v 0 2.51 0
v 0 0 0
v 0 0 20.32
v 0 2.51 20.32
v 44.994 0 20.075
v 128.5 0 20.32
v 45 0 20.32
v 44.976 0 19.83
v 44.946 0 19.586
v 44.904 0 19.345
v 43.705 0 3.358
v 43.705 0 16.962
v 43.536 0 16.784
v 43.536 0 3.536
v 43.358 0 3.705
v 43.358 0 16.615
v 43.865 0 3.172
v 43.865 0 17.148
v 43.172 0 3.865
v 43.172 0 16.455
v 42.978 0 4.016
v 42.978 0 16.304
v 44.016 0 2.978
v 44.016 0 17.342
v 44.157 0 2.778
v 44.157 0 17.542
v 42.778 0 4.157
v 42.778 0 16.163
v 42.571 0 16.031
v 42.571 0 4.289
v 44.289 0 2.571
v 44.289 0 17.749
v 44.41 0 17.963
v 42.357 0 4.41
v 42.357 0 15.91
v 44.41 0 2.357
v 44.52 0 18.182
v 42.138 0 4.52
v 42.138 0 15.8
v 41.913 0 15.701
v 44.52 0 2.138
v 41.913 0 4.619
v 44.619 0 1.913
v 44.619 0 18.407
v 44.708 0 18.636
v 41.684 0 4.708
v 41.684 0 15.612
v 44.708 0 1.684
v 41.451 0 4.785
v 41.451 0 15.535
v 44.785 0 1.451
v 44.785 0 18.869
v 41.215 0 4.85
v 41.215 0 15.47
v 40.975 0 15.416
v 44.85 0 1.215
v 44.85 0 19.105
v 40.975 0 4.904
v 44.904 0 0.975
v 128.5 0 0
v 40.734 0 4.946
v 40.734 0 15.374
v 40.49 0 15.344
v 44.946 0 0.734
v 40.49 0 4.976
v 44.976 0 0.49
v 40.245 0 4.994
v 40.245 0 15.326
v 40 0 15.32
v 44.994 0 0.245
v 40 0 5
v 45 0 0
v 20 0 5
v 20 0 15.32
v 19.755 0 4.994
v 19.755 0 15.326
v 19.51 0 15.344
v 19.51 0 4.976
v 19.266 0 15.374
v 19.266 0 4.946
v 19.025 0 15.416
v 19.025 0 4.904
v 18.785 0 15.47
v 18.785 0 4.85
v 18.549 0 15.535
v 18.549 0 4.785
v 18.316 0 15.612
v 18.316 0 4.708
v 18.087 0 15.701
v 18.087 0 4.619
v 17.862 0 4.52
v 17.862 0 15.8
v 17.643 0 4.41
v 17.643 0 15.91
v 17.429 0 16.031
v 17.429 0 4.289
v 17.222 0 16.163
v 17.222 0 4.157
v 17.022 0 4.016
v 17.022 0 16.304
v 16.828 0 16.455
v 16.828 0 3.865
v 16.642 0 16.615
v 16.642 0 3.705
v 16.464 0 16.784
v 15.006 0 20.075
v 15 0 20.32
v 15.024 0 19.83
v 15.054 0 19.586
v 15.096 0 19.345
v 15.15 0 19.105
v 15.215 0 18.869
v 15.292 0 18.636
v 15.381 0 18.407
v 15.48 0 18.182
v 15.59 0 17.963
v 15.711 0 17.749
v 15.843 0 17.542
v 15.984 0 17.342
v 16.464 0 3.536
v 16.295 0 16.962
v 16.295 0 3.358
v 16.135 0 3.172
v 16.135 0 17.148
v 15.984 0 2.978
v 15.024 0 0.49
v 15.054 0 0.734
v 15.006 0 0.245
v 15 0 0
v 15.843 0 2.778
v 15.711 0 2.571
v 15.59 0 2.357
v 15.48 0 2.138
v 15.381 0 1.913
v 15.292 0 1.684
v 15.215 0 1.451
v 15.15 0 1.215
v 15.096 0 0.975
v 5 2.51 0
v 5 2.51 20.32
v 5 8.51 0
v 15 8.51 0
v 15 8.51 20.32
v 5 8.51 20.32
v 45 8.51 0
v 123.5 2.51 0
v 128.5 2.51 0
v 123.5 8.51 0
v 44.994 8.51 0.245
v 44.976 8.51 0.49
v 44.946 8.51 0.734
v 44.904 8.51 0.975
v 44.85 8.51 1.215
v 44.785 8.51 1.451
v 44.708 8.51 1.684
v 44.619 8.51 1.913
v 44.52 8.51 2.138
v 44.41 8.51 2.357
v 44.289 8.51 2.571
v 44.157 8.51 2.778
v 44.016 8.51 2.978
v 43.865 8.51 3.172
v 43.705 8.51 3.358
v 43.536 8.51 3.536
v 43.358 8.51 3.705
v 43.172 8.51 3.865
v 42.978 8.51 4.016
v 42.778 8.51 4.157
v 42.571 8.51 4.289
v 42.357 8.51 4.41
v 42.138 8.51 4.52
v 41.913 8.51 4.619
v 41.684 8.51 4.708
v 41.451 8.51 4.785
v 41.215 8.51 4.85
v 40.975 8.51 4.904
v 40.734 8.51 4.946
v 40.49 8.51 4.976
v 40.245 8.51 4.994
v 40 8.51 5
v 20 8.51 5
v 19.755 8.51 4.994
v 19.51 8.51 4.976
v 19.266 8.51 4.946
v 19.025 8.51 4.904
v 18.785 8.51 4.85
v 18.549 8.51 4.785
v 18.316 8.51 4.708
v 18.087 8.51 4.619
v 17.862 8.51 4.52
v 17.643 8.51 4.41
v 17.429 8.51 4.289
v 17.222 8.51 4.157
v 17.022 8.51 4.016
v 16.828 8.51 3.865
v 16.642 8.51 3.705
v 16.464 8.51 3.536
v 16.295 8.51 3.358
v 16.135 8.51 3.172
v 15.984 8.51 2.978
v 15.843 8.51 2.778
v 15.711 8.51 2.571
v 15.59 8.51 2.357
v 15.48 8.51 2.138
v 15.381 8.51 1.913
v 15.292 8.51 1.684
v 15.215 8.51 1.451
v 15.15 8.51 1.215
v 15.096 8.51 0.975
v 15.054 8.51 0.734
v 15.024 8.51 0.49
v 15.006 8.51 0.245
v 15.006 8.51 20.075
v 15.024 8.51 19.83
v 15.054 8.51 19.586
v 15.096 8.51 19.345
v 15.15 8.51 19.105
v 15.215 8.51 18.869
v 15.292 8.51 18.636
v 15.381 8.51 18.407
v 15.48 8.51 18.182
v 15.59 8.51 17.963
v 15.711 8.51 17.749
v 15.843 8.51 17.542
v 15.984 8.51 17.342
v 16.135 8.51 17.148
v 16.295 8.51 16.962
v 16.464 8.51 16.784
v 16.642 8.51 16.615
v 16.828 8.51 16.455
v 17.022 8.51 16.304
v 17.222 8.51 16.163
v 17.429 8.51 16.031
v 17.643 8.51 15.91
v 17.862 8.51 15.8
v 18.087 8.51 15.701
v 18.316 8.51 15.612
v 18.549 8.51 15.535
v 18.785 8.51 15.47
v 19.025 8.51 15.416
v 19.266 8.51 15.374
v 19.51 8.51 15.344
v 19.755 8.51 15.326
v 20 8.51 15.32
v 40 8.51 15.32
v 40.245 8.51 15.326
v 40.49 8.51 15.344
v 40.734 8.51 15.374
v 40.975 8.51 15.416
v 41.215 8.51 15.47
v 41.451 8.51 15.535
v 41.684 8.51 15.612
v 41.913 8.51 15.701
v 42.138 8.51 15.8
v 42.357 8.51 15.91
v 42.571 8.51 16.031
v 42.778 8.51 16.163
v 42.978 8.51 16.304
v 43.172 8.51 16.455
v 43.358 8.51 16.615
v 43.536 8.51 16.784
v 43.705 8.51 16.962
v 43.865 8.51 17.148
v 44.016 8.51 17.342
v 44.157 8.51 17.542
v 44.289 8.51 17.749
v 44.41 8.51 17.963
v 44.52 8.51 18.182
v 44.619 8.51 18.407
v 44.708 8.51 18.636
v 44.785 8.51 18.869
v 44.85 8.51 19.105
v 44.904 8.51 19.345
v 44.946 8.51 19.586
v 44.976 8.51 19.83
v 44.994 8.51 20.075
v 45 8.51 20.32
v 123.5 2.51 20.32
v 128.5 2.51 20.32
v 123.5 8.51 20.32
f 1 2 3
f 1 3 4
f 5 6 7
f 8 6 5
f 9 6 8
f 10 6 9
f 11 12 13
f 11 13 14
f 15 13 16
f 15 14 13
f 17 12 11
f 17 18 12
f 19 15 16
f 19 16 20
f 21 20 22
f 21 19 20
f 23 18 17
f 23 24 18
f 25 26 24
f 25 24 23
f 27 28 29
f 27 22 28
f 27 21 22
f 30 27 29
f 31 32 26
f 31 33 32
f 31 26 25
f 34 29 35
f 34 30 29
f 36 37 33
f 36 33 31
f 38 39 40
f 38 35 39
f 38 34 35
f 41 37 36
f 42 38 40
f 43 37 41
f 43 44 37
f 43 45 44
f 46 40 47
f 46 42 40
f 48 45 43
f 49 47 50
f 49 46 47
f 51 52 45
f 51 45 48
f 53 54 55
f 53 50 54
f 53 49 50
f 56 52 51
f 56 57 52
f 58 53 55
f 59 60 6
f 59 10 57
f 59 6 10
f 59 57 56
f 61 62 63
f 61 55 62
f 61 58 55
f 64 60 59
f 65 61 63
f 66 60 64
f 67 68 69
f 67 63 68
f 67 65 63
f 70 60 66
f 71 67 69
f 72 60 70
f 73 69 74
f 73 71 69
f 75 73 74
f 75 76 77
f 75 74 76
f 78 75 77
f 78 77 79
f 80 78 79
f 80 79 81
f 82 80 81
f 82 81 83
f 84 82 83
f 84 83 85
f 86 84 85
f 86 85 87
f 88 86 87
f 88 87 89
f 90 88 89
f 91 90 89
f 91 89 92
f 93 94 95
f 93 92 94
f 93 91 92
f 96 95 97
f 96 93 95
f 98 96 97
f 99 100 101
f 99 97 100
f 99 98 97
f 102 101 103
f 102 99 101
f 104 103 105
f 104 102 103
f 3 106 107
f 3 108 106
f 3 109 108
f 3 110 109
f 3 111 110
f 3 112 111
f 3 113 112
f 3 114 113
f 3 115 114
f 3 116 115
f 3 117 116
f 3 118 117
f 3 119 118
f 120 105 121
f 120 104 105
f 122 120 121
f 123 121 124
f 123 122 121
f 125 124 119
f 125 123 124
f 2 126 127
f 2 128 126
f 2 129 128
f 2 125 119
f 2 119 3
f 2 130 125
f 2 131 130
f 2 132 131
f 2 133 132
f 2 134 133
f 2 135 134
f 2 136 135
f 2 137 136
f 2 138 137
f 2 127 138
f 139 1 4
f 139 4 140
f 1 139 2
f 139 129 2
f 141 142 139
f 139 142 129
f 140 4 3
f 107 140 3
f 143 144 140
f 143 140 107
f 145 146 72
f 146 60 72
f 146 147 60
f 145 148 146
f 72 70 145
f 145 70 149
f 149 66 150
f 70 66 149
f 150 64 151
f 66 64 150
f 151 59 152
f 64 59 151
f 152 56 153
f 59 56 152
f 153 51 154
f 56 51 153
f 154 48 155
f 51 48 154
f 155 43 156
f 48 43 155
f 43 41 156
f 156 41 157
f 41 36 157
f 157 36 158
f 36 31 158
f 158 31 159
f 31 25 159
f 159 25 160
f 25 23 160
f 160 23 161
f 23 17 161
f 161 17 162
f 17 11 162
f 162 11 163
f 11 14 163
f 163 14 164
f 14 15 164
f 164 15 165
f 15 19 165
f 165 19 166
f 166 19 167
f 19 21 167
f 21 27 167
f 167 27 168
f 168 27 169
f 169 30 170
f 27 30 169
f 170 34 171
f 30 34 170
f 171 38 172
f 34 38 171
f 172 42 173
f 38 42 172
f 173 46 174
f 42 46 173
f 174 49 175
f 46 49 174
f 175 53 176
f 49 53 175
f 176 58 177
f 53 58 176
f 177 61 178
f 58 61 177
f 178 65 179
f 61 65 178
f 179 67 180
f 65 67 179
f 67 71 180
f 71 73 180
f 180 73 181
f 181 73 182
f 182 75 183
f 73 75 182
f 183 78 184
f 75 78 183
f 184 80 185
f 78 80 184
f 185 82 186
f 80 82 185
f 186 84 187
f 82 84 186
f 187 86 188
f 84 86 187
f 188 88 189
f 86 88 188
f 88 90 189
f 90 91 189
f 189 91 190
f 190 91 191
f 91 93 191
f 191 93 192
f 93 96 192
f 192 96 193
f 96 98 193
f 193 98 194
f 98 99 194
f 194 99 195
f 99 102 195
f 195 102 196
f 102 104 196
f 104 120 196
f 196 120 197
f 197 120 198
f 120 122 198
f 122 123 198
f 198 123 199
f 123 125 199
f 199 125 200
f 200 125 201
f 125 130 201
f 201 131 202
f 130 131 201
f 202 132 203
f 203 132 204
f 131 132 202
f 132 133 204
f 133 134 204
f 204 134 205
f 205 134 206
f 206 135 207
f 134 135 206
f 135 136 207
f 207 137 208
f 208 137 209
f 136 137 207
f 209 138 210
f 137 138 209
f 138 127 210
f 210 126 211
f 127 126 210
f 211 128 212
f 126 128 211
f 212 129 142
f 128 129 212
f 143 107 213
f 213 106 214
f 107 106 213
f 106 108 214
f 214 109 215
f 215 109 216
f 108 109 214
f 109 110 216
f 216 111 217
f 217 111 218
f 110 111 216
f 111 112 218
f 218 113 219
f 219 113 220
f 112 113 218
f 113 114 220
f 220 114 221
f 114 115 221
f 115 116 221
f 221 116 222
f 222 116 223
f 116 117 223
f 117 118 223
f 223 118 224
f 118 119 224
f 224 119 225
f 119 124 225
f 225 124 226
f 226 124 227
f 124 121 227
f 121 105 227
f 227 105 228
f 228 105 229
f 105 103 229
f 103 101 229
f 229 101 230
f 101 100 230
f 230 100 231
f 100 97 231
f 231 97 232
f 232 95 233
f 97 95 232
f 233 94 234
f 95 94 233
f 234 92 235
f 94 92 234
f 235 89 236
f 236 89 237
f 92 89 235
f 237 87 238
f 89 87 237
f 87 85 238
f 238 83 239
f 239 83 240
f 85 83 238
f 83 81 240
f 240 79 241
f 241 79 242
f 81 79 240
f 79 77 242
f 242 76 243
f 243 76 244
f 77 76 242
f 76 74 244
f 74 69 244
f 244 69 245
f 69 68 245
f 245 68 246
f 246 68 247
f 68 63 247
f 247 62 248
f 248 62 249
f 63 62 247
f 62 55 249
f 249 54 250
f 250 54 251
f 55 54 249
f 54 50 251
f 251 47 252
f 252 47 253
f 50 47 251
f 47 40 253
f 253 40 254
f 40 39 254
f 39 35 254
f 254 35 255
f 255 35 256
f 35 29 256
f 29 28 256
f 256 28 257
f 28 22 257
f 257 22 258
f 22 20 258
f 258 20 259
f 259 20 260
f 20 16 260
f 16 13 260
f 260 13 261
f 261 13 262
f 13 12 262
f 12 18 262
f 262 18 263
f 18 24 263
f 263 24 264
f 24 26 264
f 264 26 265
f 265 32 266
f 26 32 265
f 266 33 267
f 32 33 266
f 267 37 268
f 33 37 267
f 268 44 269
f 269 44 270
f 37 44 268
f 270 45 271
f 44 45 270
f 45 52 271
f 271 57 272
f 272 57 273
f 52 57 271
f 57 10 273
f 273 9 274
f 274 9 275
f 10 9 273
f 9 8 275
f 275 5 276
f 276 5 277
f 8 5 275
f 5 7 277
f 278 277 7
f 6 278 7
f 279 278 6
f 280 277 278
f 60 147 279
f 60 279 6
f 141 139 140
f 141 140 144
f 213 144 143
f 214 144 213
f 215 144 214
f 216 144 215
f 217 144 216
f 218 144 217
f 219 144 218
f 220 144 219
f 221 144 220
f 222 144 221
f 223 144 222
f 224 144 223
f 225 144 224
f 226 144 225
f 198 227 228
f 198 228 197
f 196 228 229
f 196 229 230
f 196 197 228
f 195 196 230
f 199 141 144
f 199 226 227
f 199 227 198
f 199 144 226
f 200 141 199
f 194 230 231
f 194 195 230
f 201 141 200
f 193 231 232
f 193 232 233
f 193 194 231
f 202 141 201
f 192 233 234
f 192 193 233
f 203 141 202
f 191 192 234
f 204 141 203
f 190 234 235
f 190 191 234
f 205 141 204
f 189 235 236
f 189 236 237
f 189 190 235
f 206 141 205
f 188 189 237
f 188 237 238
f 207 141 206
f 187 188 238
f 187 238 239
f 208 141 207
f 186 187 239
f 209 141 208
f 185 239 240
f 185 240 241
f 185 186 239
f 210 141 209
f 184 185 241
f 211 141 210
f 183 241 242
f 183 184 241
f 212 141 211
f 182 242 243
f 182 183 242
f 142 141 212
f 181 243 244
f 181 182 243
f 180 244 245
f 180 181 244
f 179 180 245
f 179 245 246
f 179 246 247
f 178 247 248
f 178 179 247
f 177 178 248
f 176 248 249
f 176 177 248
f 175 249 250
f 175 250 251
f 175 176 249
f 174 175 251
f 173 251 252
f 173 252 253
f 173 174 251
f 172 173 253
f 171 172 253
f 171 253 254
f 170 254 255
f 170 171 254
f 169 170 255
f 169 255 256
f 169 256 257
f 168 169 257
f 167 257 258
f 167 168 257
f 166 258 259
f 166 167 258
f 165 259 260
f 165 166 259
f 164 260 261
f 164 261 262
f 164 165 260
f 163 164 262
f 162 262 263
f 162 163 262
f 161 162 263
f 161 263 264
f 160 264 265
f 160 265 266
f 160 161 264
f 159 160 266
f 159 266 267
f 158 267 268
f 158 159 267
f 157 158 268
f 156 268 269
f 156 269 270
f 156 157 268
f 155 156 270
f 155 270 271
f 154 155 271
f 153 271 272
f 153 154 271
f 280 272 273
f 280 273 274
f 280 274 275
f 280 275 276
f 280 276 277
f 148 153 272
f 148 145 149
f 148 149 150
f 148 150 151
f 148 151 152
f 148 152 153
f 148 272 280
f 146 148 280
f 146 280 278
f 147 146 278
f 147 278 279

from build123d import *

# Parameters (mm, degrees)
PAD_DEPTH    = 20.32
POCKET_DEPTH = 21


with BuildPart() as part:
    # Sketch → Pad (new body)
    with BuildSketch(Plane.XY):
        Polygon((0, 0), (0, 2.51), (5, 2.51), (4.999966, 8.51), (123.5, 8.51), (123.5, 2.51), (128.5, 2.51), (128.5, 0), align=None)
    extrude(amount=PAD_DEPTH)

    # Sketch002 → Pocket (cut)
    with BuildSketch(Plane.XZ):
        with BuildLine():
            ThreePointArc((20, 5), (15, 0), (20, -5))
            Line((20, -5), (40, -5))
            ThreePointArc((40, -5), (45, 0), (40, 5))
            Line((40, 5), (20, 5))
        make_face()
        with BuildLine():
            ThreePointArc((20, 25.32), (15, 20.32), (20, 15.32))
            Line((20, 15.32), (40, 15.32))
            ThreePointArc((40, 15.32), (45, 20.32), (40, 25.32))
            Line((40, 25.32), (20, 25.32))
        make_face()
    extrude(amount=-POCKET_DEPTH, mode=Mode.SUBTRACT)


solid = part.part
